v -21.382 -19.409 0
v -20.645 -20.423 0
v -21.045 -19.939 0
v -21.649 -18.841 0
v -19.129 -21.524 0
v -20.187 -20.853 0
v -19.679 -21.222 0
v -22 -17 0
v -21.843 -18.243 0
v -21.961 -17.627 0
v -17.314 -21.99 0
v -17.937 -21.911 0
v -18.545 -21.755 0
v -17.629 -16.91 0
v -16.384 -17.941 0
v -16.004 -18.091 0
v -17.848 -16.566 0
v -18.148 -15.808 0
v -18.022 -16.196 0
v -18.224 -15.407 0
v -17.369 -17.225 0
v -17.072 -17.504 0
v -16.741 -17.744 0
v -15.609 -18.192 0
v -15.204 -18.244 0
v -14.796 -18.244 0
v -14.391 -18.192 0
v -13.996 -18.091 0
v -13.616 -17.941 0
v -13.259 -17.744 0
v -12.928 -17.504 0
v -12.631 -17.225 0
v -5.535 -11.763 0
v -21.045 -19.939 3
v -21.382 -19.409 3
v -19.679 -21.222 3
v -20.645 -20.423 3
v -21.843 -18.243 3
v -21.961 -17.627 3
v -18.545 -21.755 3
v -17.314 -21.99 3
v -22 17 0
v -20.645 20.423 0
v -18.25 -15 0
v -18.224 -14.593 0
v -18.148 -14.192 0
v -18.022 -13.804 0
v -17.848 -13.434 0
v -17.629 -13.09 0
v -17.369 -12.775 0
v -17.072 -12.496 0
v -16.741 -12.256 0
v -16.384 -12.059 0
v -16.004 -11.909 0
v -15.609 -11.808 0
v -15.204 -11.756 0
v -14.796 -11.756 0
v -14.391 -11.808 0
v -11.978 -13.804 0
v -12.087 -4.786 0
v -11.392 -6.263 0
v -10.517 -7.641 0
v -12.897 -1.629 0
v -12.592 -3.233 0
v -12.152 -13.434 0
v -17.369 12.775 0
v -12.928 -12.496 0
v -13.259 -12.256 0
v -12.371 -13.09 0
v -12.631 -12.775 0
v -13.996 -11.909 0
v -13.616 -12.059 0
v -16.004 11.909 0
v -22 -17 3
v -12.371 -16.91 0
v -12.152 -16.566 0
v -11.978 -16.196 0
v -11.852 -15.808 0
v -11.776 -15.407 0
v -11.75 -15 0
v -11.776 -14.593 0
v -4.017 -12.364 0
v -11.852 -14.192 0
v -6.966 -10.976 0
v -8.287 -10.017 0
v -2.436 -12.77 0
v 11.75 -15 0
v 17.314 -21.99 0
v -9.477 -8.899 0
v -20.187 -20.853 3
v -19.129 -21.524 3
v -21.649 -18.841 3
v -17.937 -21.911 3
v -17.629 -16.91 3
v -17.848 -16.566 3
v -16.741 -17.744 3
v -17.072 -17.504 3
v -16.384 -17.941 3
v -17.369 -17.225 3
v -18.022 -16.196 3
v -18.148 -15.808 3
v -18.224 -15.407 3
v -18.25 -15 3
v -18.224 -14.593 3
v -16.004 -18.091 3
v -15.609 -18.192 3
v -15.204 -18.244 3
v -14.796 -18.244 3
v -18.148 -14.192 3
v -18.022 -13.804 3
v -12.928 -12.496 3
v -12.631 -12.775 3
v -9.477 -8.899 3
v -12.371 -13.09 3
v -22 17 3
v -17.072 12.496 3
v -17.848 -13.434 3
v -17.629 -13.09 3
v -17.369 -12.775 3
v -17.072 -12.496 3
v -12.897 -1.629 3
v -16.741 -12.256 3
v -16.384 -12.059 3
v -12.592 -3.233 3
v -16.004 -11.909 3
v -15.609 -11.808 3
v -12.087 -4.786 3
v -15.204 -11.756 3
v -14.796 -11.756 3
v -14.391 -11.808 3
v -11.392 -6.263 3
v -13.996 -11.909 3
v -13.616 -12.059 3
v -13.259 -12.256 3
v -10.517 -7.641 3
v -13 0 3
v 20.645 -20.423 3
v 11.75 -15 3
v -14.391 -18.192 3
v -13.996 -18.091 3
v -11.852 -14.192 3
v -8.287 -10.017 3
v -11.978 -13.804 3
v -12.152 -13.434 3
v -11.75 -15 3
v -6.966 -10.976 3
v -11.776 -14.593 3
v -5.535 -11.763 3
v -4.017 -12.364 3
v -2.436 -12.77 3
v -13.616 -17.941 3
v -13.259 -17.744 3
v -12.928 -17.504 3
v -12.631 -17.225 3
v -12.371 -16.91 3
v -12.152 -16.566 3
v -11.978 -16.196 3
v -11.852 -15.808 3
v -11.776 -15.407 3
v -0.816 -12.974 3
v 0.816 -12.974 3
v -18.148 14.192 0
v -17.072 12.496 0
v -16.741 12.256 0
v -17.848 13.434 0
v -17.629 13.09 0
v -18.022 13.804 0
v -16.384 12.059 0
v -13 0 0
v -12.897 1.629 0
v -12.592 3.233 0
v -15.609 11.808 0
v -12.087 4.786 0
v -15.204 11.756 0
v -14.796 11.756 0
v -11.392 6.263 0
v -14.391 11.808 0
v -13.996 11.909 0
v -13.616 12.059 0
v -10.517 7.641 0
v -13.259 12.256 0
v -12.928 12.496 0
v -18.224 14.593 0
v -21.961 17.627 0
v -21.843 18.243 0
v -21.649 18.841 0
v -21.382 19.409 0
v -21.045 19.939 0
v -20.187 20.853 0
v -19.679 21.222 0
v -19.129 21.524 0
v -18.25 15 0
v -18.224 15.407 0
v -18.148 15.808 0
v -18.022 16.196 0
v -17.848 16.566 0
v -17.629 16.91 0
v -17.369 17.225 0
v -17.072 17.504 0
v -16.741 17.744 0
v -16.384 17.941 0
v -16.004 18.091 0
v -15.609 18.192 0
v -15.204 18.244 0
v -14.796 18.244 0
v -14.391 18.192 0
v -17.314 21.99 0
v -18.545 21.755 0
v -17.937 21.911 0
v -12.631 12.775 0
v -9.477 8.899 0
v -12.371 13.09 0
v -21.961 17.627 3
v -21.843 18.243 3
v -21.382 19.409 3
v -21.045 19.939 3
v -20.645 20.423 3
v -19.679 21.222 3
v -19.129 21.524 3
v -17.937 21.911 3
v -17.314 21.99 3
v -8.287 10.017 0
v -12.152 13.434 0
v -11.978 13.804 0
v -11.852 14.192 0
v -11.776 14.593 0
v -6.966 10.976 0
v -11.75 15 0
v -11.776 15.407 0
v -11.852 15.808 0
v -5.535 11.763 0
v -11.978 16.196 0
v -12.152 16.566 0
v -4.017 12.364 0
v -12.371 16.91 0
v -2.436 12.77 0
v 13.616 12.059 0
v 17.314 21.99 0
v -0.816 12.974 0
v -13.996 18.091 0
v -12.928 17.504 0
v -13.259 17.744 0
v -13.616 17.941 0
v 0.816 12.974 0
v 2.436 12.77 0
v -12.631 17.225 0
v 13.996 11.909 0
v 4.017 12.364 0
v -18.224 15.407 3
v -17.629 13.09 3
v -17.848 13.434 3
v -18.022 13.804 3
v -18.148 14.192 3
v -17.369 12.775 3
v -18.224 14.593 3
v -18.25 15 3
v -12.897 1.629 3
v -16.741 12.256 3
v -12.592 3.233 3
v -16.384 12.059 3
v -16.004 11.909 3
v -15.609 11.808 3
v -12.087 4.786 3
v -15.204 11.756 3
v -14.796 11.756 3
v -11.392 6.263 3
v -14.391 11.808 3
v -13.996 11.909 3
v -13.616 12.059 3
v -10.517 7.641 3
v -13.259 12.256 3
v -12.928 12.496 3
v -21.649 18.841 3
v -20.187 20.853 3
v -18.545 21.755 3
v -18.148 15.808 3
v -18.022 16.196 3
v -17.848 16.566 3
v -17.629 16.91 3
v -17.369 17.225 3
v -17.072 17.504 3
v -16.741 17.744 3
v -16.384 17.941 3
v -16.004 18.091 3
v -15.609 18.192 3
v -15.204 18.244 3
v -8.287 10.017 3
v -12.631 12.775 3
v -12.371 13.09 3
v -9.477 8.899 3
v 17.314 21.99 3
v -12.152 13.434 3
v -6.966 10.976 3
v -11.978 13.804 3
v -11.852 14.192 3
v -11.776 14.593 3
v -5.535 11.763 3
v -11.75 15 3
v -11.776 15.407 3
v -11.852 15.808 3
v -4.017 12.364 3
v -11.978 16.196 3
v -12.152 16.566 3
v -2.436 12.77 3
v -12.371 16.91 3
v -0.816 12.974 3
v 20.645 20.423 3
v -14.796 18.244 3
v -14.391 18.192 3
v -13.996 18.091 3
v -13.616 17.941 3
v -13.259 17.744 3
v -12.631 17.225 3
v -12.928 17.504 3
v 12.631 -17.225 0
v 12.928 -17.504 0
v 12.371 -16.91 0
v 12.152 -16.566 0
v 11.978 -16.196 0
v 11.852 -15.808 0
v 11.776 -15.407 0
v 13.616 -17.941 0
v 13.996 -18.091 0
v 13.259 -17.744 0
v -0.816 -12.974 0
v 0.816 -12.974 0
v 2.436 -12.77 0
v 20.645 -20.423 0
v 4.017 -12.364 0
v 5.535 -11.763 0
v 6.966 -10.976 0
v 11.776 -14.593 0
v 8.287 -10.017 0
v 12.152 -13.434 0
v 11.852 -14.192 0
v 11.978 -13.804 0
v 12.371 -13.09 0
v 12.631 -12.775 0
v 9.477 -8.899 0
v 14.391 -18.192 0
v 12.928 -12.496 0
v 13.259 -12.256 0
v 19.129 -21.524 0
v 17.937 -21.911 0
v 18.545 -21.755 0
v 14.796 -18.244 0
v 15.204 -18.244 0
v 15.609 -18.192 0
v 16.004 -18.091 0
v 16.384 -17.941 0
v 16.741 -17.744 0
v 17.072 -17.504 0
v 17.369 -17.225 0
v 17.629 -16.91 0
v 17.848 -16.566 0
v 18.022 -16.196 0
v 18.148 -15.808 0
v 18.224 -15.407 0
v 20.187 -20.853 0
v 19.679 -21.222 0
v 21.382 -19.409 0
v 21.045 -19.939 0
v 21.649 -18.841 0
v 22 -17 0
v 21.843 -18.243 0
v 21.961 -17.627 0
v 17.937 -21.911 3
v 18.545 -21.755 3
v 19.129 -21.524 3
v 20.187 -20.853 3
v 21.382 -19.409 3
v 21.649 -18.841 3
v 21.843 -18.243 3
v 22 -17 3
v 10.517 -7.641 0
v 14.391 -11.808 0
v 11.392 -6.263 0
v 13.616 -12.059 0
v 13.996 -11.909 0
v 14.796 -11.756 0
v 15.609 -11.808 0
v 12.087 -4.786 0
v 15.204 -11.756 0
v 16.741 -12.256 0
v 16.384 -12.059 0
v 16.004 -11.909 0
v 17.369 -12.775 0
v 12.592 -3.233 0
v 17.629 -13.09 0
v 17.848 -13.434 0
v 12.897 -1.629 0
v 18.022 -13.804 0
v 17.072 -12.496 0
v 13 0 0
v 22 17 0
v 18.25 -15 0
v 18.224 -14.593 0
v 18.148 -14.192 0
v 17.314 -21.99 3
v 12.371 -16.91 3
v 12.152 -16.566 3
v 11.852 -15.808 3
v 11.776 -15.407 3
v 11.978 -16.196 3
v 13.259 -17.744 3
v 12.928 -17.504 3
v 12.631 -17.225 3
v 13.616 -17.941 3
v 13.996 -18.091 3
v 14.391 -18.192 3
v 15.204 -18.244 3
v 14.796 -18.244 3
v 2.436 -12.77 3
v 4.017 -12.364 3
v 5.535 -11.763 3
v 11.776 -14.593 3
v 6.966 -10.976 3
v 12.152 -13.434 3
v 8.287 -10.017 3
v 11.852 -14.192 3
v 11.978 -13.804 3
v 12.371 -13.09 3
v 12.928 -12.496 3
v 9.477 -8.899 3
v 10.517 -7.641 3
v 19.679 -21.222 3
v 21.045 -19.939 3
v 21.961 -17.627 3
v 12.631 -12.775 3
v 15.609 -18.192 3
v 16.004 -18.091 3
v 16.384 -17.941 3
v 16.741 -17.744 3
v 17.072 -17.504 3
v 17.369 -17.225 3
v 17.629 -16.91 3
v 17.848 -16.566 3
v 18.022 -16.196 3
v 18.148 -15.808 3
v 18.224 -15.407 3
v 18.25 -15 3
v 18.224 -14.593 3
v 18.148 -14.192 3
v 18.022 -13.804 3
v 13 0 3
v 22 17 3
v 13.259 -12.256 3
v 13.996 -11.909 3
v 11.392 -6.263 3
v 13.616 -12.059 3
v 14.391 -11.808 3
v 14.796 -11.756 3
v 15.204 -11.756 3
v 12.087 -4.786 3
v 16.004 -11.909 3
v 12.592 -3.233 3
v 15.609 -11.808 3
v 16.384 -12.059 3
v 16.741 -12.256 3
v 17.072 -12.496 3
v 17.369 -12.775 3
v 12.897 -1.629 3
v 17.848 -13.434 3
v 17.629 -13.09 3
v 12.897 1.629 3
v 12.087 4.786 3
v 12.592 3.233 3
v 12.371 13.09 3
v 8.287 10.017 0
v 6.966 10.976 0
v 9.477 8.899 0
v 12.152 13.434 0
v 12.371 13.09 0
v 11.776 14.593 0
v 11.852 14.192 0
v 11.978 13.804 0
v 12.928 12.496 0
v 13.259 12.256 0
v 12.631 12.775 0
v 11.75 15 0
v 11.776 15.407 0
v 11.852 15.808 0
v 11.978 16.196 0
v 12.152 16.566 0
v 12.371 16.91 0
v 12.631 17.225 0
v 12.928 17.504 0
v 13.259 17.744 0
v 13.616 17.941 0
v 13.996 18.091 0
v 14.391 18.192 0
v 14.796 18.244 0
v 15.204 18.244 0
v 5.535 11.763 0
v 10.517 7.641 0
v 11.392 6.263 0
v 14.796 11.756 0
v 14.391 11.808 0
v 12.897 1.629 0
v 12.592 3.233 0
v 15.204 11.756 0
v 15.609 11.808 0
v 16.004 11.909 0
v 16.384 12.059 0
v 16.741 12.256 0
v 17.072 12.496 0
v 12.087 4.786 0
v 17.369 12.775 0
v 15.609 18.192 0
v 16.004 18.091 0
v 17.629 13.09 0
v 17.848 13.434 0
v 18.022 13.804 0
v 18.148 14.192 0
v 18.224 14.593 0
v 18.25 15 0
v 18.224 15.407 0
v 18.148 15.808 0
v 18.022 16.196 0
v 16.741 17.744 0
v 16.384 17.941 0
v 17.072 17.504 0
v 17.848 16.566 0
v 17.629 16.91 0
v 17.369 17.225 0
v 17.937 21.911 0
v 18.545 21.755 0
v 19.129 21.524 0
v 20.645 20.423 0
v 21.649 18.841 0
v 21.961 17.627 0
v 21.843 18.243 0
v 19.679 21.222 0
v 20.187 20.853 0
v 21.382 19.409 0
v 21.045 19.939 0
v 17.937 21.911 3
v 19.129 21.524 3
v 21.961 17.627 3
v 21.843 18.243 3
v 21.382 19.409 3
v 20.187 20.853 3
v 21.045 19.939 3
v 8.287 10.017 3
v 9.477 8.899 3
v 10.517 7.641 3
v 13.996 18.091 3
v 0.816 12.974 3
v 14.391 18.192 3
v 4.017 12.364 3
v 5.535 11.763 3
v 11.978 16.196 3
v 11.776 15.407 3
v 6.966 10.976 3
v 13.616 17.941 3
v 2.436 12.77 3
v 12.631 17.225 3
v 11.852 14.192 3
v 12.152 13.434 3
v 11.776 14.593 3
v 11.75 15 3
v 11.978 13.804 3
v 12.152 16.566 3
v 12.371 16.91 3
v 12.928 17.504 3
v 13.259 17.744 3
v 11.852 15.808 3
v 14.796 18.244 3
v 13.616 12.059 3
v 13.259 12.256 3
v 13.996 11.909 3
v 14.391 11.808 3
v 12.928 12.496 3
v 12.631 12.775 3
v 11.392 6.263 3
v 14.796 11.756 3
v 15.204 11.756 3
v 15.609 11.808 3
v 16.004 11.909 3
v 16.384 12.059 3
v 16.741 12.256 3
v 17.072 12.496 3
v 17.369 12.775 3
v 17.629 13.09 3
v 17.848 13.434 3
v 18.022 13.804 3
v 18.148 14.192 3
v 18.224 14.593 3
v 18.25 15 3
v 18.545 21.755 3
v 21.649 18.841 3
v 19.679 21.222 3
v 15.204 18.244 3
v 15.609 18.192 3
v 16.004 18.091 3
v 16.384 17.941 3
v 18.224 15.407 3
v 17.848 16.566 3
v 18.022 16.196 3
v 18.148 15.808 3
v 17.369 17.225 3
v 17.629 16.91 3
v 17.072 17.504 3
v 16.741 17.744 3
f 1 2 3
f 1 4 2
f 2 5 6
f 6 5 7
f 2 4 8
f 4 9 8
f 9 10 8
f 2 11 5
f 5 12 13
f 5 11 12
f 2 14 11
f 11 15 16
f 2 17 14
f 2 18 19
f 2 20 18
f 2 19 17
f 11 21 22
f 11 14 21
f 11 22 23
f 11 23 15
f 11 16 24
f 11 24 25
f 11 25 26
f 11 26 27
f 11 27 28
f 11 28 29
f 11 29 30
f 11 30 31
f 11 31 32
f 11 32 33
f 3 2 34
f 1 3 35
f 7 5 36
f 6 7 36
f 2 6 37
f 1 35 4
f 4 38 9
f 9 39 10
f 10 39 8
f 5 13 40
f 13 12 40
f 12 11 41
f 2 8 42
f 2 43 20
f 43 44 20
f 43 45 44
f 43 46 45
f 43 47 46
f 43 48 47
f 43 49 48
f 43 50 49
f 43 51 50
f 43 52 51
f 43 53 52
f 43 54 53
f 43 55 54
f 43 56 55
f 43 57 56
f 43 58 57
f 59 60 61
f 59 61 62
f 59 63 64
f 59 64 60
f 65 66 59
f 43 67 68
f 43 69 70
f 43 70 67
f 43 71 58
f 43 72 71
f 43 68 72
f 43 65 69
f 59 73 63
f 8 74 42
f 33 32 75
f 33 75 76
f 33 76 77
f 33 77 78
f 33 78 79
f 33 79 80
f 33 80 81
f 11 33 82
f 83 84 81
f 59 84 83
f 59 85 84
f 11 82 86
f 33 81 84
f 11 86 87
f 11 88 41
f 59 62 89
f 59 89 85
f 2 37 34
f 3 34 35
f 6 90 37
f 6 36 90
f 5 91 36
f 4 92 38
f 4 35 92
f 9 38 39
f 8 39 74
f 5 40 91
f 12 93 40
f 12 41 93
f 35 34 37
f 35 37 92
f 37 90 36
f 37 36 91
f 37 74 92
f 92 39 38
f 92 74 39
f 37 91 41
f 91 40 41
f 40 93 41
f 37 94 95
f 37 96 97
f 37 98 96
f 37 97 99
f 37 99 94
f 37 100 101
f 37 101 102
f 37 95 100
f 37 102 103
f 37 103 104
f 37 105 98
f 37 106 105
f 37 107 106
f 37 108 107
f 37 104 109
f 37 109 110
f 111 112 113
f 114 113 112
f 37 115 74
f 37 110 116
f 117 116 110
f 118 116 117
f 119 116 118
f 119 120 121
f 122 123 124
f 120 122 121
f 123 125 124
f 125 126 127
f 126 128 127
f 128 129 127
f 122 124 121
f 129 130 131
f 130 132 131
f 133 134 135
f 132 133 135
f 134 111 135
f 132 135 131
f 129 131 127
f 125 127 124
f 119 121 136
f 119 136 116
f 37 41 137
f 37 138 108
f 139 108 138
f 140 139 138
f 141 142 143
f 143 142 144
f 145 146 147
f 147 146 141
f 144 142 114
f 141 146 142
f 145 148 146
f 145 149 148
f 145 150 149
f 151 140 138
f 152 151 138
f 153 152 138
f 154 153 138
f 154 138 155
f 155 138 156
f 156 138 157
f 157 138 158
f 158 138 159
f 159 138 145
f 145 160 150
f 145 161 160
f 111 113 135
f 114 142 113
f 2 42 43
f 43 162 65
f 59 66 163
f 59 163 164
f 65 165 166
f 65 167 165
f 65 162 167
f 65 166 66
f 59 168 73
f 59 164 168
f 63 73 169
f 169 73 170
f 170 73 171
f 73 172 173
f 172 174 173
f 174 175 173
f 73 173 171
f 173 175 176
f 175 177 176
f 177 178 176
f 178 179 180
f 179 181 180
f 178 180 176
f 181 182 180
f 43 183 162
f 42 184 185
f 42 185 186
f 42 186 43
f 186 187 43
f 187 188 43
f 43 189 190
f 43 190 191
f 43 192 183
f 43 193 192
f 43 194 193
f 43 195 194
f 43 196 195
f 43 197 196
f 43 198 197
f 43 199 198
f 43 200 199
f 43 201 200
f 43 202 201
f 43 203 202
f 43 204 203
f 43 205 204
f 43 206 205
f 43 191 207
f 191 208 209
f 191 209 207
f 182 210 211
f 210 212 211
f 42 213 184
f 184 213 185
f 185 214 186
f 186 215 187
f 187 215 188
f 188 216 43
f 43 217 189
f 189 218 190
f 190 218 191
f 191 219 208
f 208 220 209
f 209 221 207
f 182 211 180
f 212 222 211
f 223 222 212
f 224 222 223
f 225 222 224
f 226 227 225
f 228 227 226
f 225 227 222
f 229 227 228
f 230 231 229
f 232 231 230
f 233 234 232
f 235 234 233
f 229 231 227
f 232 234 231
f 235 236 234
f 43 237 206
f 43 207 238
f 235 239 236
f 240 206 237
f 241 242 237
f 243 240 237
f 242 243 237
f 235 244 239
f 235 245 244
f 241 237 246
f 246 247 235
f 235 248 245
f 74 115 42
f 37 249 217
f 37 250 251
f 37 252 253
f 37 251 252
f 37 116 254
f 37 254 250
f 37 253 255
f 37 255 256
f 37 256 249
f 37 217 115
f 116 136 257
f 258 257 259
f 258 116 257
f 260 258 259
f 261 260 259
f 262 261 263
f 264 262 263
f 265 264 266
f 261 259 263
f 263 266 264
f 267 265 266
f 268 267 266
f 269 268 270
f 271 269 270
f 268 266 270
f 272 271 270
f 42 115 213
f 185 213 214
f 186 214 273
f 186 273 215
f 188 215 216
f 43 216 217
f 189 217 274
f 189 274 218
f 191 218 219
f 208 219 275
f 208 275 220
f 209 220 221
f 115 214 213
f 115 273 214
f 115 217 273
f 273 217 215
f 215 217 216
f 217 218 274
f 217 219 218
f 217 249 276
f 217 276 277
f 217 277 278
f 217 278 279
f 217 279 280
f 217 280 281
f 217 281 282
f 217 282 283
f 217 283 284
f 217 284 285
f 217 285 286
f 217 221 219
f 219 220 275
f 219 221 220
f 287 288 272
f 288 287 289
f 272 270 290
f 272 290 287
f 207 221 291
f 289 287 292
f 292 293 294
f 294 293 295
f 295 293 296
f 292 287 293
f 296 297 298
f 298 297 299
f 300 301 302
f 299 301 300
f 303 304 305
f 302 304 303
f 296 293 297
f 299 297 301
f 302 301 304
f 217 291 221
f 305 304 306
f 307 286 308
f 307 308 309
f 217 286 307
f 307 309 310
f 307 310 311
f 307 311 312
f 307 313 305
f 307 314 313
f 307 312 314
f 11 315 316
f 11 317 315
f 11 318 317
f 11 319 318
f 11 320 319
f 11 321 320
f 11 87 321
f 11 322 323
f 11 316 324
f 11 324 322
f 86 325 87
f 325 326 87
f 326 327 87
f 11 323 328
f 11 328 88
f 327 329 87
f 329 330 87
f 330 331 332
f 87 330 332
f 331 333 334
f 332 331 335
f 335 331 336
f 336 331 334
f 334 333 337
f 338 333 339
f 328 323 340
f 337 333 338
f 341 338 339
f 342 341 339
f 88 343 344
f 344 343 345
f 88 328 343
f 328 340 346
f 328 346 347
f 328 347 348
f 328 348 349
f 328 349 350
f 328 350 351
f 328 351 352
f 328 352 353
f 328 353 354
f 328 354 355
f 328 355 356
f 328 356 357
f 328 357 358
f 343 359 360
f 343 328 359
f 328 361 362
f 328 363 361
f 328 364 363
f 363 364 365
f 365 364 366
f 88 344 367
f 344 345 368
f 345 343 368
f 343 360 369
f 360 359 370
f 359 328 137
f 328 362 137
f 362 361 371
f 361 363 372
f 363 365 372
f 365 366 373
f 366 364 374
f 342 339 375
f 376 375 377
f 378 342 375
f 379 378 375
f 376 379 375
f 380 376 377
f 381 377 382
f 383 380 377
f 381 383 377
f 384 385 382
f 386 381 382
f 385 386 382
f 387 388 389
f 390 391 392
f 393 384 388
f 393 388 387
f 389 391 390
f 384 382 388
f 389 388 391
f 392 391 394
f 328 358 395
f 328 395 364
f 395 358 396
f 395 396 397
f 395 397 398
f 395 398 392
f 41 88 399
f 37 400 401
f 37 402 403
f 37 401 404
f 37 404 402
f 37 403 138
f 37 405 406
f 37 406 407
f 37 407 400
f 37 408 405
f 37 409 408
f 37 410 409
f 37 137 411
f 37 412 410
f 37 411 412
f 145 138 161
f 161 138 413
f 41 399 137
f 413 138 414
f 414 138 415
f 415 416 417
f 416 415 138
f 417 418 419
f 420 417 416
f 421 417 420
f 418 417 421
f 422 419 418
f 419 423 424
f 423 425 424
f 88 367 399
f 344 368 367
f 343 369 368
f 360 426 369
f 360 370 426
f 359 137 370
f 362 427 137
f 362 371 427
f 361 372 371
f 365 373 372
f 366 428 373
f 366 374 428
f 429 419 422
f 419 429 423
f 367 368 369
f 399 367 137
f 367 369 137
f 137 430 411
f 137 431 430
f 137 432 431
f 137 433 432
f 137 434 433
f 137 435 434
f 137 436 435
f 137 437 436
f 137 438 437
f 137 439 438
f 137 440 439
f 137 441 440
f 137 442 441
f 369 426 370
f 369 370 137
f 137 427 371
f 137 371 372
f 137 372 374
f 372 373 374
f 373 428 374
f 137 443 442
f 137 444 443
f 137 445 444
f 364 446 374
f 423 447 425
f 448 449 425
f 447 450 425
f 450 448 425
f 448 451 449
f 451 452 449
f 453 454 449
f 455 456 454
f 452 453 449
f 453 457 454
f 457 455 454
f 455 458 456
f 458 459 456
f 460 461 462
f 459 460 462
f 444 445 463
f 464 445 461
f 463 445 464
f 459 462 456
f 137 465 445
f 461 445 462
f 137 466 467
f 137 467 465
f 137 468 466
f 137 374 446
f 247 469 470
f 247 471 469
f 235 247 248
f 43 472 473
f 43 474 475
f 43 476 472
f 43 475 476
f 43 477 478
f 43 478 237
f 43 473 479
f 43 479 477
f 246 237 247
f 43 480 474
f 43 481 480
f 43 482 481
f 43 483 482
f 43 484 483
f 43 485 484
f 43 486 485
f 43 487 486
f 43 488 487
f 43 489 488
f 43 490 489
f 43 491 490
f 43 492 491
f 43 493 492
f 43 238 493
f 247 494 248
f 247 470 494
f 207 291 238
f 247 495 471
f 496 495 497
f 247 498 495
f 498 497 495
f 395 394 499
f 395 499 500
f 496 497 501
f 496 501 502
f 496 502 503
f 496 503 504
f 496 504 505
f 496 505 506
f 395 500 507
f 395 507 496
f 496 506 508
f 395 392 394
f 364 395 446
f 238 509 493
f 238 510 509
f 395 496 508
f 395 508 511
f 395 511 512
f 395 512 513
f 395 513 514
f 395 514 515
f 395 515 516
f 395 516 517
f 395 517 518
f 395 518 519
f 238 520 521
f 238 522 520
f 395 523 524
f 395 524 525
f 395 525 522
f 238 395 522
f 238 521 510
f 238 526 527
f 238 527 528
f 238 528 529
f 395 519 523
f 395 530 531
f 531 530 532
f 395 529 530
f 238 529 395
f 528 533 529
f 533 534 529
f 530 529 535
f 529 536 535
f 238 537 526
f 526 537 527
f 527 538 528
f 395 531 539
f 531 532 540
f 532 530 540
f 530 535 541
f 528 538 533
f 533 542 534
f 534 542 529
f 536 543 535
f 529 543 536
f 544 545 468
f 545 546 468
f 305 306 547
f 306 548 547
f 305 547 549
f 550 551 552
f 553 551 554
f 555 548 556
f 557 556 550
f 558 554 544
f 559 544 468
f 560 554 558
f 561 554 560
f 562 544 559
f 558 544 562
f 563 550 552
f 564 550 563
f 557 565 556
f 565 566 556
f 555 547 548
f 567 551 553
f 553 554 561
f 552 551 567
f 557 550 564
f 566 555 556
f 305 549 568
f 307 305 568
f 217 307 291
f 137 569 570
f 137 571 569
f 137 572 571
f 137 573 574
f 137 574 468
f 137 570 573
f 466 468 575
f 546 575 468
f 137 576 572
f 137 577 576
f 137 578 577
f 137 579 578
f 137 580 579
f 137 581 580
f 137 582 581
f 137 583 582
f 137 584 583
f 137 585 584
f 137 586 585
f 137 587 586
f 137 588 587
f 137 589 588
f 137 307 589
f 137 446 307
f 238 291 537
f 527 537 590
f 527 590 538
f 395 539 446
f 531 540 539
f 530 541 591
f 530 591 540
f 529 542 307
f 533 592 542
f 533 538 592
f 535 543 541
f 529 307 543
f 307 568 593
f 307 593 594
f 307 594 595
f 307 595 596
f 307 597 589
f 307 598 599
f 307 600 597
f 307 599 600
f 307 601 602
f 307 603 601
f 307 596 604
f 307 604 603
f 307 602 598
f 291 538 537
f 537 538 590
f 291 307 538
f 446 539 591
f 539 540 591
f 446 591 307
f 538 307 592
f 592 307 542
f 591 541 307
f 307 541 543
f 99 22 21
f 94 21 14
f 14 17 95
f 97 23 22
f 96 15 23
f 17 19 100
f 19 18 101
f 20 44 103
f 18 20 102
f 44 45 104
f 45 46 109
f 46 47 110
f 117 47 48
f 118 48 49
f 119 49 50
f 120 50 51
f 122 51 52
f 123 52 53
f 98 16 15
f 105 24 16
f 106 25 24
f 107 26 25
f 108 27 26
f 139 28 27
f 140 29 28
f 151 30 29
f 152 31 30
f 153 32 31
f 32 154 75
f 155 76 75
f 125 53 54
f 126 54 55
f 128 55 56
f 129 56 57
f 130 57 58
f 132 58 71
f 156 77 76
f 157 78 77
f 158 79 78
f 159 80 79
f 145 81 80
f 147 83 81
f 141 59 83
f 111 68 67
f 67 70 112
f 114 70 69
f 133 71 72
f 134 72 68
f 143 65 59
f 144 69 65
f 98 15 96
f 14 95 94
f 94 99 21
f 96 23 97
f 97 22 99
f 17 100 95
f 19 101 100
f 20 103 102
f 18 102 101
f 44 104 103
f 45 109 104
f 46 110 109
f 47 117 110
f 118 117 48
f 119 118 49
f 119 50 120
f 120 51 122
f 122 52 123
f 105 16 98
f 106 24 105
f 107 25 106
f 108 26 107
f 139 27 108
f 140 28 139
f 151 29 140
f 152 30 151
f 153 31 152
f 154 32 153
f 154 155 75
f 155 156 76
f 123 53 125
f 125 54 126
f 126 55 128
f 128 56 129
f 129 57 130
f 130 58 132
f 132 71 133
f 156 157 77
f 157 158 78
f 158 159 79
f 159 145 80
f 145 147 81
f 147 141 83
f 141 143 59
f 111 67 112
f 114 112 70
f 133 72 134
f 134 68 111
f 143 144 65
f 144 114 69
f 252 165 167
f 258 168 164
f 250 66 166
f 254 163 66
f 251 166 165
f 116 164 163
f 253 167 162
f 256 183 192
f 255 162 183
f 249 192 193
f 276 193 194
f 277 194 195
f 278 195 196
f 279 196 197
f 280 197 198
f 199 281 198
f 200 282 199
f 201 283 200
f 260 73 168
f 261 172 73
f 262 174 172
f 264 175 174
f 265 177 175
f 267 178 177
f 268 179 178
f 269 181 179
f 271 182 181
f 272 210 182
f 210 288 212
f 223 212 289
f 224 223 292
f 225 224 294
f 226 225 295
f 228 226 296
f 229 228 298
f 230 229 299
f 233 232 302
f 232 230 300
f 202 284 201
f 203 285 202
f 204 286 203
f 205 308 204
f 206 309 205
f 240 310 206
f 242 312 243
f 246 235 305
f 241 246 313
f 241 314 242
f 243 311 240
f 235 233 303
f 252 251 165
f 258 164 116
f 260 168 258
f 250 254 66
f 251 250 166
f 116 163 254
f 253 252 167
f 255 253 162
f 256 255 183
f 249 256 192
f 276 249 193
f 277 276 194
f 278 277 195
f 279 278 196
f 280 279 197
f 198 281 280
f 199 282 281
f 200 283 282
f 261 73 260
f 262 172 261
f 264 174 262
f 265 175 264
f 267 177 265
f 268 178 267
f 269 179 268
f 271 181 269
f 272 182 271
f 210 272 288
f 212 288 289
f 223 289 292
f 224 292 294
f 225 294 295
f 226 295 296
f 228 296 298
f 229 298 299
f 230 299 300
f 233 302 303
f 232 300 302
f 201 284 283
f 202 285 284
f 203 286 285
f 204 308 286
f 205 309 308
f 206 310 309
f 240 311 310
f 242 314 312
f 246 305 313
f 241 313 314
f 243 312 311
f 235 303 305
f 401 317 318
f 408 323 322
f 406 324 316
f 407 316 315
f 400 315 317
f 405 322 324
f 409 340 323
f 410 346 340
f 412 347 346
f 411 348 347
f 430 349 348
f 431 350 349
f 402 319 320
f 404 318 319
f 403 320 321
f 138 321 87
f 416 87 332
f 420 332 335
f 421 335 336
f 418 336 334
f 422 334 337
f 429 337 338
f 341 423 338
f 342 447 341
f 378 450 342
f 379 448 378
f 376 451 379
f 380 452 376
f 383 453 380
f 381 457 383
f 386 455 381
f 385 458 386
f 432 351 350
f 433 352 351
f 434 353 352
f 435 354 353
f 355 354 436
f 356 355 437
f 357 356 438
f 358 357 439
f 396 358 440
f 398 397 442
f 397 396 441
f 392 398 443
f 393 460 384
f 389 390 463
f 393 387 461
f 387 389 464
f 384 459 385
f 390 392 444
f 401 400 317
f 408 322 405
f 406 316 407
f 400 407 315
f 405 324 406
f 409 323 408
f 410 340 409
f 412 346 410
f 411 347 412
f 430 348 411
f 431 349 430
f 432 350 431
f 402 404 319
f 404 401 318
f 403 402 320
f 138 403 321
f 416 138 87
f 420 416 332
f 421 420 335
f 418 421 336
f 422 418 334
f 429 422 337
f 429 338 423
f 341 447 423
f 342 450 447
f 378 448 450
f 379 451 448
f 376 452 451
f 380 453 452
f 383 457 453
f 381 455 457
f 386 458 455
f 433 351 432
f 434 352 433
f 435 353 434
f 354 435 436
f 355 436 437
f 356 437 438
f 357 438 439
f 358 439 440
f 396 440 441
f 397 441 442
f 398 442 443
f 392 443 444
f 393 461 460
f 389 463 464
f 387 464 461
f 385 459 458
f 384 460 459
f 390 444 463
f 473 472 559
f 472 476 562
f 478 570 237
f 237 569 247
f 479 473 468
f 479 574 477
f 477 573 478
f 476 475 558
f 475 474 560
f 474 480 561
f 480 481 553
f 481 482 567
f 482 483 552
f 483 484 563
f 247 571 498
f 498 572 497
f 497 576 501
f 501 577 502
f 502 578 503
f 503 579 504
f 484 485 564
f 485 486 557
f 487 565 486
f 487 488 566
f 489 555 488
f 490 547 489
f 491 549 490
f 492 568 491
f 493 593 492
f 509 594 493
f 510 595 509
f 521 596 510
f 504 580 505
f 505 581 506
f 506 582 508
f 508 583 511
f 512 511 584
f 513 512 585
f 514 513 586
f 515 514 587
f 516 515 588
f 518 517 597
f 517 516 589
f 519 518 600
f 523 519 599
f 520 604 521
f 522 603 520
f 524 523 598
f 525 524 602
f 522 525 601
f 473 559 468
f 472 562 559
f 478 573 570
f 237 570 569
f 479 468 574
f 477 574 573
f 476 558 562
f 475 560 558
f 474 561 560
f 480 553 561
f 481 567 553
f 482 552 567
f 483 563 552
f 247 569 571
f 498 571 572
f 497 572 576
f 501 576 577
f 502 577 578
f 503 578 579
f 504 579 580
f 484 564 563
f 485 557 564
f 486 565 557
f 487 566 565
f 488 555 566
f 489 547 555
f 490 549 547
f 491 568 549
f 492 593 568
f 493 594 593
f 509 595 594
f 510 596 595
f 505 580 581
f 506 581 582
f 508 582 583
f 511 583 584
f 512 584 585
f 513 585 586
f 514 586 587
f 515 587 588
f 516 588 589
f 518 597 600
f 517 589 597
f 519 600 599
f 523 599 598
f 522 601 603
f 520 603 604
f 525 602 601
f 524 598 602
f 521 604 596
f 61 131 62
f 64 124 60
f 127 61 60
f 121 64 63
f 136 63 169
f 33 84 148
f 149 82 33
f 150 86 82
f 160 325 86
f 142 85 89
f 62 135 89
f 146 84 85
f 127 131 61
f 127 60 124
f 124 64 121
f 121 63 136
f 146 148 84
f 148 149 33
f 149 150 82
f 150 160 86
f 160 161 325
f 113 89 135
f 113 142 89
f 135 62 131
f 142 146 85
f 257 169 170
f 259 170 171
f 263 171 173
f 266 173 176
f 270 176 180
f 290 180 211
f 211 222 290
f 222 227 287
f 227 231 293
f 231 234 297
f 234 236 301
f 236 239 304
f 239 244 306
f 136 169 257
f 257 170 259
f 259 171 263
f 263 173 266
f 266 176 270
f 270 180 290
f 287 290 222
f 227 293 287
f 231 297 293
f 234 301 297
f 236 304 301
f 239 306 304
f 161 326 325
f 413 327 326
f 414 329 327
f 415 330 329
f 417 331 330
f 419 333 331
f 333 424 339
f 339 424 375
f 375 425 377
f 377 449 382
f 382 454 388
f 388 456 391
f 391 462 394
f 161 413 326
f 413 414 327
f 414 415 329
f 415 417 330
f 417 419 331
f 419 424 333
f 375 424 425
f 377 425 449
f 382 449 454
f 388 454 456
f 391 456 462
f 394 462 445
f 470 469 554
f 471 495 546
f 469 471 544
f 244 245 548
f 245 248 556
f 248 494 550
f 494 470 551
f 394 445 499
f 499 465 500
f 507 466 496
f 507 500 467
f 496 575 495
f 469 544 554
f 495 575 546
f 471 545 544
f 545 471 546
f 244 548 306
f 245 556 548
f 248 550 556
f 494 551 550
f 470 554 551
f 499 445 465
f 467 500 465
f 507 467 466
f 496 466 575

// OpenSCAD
$fn = 50;

difference() {
	union() {
		hull() {
			translate(v = [-17.0, 17.0, 0]) {
				cylinder(h = 3, r = 5);
			}
			translate(v = [17.0, 17.0, 0]) {
				cylinder(h = 3, r = 5);
			}
			translate(v = [-17.0, -17.0, 0]) {
				cylinder(h = 3, r = 5);
			}
			translate(v = [17.0, -17.0, 0]) {
				cylinder(h = 3, r = 5);
			}
		}
	}
	union() {
		translate(v = [-15.0, -15.0, -100.0]) {
			cylinder(h = 200, r = 3.25);
		}
		translate(v = [-15.0, 15.0, -100.0]) {
			cylinder(h = 200, r = 3.25);
		}
		translate(v = [15.0, -15.0, -100.0]) {
			cylinder(h = 200, r = 3.25);
		}
		translate(v = [15.0, 15.0, -100.0]) {
			cylinder(h = 200, r = 3.25);
		}
		translate(v = [-15.0, -15.0, -100.0]) {
			cylinder(h = 200, r = 1.8);
		}
		translate(v = [-15.0, 15.0, -100.0]) {
			cylinder(h = 200, r = 1.8);
		}
		translate(v = [15.0, -15.0, -100.0]) {
			cylinder(h = 200, r = 1.8);
		}
		translate(v = [15.0, 15.0, -100.0]) {
			cylinder(h = 200, r = 1.8);
		}
		cylinder(h = 3, r = 13.0);
	}
}
